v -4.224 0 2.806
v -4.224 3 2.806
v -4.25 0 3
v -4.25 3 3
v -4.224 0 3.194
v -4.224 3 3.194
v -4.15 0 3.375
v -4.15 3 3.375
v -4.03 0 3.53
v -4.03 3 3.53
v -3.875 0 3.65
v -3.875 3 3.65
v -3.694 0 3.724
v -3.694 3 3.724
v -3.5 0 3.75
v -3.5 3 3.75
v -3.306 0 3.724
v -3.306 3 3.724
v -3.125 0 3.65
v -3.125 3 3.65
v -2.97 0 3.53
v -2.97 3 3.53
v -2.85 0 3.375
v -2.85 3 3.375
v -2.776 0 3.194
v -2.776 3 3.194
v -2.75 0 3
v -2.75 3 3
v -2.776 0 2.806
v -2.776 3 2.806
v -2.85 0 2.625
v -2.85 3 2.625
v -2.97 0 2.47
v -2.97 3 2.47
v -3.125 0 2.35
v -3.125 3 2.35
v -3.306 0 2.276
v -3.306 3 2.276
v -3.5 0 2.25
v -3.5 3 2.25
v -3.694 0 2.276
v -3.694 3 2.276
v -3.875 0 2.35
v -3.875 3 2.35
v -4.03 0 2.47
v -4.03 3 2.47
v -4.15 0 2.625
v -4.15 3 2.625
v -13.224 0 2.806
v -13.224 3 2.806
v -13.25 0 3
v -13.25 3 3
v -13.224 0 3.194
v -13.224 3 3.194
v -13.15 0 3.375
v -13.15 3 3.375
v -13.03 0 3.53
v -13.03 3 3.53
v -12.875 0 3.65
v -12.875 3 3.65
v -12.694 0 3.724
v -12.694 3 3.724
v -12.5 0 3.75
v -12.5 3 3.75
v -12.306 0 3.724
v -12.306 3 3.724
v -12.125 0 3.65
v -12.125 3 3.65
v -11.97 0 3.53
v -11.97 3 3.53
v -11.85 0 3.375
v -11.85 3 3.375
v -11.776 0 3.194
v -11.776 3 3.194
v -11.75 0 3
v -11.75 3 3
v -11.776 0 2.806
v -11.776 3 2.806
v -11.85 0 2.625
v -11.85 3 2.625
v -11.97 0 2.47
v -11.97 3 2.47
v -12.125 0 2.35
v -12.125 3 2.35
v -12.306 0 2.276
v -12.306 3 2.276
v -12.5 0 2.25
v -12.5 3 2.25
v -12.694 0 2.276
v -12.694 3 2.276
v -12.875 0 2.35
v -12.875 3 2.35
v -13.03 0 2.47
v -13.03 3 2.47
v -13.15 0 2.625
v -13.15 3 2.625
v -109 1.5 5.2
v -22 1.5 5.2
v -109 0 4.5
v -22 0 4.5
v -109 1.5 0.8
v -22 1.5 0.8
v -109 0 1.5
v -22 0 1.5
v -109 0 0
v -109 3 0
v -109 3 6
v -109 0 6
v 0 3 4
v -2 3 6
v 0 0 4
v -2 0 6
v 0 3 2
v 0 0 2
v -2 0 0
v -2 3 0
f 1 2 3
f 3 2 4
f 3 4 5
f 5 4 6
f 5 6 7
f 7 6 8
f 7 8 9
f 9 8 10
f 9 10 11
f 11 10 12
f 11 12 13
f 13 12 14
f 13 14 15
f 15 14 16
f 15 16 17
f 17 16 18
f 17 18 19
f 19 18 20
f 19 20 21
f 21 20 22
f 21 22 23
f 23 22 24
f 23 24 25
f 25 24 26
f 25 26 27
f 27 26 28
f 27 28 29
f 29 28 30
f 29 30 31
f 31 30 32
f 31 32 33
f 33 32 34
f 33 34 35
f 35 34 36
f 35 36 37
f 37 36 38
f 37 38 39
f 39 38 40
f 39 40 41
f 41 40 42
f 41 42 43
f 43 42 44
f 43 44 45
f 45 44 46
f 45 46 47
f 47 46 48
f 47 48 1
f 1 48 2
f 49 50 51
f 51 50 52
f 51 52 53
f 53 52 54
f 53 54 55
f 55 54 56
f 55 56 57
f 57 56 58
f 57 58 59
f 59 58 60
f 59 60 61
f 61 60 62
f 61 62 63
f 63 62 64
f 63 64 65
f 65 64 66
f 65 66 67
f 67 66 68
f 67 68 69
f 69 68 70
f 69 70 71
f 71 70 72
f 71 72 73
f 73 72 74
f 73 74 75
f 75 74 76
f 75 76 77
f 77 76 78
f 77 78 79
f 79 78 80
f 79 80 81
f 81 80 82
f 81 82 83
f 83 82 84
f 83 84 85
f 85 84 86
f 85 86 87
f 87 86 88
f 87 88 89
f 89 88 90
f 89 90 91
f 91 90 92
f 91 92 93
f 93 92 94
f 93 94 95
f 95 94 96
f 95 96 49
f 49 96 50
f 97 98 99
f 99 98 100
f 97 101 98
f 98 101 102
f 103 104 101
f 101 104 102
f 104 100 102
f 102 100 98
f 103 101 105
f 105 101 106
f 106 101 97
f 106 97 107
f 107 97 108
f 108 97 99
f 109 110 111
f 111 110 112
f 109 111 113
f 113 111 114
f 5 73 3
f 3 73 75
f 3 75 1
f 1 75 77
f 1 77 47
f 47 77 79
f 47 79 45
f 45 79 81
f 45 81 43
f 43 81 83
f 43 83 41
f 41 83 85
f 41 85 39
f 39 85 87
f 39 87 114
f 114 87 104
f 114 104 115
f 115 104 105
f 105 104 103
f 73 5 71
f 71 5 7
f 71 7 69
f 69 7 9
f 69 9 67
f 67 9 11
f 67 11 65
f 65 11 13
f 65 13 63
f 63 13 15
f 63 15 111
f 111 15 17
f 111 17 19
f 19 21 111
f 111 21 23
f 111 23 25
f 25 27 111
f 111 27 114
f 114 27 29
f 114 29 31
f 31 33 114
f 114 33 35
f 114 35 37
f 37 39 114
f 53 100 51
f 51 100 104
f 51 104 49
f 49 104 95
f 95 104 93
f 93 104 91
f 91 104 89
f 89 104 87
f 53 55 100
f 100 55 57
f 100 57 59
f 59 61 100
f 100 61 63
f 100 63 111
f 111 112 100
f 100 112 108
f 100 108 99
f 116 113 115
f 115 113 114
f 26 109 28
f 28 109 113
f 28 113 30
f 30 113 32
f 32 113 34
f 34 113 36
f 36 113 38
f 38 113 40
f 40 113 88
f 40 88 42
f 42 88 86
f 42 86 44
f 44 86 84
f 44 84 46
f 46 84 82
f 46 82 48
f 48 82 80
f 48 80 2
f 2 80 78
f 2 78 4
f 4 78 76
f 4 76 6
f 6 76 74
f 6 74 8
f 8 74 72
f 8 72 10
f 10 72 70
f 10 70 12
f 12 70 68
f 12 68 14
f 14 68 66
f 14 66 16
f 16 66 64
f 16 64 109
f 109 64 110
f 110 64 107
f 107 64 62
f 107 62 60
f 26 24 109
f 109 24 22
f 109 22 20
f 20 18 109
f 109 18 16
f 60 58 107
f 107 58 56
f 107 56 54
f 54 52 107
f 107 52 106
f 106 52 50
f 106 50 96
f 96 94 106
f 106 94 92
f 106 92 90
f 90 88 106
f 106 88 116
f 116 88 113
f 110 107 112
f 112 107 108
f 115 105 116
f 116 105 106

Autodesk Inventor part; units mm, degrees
ref_plane "YZ Plane" through (0, 0, 0) normal (1, 0, 0) x (0, 1, 0)
ref_plane "XZ Plane" through (0, 0, 0) normal (0, 1, 0) x (-1, 0, 0)
ref_plane "XY Plane" through (0, 0, 0) normal (0, 0, 1) x (1, 0, 0)
sketch "Sketch1" plane through (0, 0, 0) normal (0, 0, 1) x (1, 0, 0)
  line L0 (0, 0) -> (-19, 0)
  line L1 (-19, 0) -> (-19, 0)
  line L2 (-19, 0) -> (-109, 0)
  line L3 (-109, 0) -> (-109, 3)
  line L4 (-109, 3) -> (-17, 3)
  line L5 (-17, 3) -> (-17, 3)
  line L6 (-17, 3) -> (0, 3)
  line L7 (0, 3) -> (0, 0)
  dimension "d1" = 0
  dimension "d3" = 3
  dimension "d4" = 3
  dimension "d5" = 17
  dimension "d6" = 2
  dimension "d7" = 90
extrude "Extrusion1" add sketch "Sketch1" along normal blind 6
chamfer "Chamfer1" distance 2 angle 45 2 edges at (0, 1.5, 0) (0, 1.5, 6)
sketch "Sketch3" plane through (-109, 0, 0) normal (-1, 0, 0) x (0, 0, 1)
  line L0 (3, 0) -> (3, 4.5868) construction
  line L1 (0.8, 1.5) -> (1.5, 0)
  line L2 (1.5, 0) -> (4.5, 0)
  line L3 (4.5, 0) -> (5.2, 1.5)
  line L4 (5.2, 1.5) -> (0.8, 1.5)
  line L5 (0, 0) -> (6, 0) projected
  point P0 (0, 0)
  dimension "d20" = 1.5
  dimension "d21" = 2.2
  dimension "d22" = 4.4
  dimension "d23" = 3
  dimension "d24" = 1.5
extrude "Extrusion3" cut sketch "Sketch3" against normal blind 87
sketch "Sketch4" plane through (-109, 3, 6) normal (0, 1, 0) x (1, 0, 0)
  line L0 (109, 4) -> (109, 2) projected
  line L1 (109, 3) -> (86.5142, 3) construction
  circle A0 centre (96.5, 3) radius 0.75
  circle A1 centre (105.5, 3) radius 0.75
  point P0 (109, 6)
  dimension "d42" = 3.5
  dimension "d43" = 9
  dimension "d44" = 1.5
  dimension "d45" = 1.5
extrude "Extrusion4" cut sketch "Sketch4" against normal through all
equation "\"d20\" = 0.5 * d23"
equation "\"d21\" = 0.5 * d22"
properties part number "spazzola - asta"
